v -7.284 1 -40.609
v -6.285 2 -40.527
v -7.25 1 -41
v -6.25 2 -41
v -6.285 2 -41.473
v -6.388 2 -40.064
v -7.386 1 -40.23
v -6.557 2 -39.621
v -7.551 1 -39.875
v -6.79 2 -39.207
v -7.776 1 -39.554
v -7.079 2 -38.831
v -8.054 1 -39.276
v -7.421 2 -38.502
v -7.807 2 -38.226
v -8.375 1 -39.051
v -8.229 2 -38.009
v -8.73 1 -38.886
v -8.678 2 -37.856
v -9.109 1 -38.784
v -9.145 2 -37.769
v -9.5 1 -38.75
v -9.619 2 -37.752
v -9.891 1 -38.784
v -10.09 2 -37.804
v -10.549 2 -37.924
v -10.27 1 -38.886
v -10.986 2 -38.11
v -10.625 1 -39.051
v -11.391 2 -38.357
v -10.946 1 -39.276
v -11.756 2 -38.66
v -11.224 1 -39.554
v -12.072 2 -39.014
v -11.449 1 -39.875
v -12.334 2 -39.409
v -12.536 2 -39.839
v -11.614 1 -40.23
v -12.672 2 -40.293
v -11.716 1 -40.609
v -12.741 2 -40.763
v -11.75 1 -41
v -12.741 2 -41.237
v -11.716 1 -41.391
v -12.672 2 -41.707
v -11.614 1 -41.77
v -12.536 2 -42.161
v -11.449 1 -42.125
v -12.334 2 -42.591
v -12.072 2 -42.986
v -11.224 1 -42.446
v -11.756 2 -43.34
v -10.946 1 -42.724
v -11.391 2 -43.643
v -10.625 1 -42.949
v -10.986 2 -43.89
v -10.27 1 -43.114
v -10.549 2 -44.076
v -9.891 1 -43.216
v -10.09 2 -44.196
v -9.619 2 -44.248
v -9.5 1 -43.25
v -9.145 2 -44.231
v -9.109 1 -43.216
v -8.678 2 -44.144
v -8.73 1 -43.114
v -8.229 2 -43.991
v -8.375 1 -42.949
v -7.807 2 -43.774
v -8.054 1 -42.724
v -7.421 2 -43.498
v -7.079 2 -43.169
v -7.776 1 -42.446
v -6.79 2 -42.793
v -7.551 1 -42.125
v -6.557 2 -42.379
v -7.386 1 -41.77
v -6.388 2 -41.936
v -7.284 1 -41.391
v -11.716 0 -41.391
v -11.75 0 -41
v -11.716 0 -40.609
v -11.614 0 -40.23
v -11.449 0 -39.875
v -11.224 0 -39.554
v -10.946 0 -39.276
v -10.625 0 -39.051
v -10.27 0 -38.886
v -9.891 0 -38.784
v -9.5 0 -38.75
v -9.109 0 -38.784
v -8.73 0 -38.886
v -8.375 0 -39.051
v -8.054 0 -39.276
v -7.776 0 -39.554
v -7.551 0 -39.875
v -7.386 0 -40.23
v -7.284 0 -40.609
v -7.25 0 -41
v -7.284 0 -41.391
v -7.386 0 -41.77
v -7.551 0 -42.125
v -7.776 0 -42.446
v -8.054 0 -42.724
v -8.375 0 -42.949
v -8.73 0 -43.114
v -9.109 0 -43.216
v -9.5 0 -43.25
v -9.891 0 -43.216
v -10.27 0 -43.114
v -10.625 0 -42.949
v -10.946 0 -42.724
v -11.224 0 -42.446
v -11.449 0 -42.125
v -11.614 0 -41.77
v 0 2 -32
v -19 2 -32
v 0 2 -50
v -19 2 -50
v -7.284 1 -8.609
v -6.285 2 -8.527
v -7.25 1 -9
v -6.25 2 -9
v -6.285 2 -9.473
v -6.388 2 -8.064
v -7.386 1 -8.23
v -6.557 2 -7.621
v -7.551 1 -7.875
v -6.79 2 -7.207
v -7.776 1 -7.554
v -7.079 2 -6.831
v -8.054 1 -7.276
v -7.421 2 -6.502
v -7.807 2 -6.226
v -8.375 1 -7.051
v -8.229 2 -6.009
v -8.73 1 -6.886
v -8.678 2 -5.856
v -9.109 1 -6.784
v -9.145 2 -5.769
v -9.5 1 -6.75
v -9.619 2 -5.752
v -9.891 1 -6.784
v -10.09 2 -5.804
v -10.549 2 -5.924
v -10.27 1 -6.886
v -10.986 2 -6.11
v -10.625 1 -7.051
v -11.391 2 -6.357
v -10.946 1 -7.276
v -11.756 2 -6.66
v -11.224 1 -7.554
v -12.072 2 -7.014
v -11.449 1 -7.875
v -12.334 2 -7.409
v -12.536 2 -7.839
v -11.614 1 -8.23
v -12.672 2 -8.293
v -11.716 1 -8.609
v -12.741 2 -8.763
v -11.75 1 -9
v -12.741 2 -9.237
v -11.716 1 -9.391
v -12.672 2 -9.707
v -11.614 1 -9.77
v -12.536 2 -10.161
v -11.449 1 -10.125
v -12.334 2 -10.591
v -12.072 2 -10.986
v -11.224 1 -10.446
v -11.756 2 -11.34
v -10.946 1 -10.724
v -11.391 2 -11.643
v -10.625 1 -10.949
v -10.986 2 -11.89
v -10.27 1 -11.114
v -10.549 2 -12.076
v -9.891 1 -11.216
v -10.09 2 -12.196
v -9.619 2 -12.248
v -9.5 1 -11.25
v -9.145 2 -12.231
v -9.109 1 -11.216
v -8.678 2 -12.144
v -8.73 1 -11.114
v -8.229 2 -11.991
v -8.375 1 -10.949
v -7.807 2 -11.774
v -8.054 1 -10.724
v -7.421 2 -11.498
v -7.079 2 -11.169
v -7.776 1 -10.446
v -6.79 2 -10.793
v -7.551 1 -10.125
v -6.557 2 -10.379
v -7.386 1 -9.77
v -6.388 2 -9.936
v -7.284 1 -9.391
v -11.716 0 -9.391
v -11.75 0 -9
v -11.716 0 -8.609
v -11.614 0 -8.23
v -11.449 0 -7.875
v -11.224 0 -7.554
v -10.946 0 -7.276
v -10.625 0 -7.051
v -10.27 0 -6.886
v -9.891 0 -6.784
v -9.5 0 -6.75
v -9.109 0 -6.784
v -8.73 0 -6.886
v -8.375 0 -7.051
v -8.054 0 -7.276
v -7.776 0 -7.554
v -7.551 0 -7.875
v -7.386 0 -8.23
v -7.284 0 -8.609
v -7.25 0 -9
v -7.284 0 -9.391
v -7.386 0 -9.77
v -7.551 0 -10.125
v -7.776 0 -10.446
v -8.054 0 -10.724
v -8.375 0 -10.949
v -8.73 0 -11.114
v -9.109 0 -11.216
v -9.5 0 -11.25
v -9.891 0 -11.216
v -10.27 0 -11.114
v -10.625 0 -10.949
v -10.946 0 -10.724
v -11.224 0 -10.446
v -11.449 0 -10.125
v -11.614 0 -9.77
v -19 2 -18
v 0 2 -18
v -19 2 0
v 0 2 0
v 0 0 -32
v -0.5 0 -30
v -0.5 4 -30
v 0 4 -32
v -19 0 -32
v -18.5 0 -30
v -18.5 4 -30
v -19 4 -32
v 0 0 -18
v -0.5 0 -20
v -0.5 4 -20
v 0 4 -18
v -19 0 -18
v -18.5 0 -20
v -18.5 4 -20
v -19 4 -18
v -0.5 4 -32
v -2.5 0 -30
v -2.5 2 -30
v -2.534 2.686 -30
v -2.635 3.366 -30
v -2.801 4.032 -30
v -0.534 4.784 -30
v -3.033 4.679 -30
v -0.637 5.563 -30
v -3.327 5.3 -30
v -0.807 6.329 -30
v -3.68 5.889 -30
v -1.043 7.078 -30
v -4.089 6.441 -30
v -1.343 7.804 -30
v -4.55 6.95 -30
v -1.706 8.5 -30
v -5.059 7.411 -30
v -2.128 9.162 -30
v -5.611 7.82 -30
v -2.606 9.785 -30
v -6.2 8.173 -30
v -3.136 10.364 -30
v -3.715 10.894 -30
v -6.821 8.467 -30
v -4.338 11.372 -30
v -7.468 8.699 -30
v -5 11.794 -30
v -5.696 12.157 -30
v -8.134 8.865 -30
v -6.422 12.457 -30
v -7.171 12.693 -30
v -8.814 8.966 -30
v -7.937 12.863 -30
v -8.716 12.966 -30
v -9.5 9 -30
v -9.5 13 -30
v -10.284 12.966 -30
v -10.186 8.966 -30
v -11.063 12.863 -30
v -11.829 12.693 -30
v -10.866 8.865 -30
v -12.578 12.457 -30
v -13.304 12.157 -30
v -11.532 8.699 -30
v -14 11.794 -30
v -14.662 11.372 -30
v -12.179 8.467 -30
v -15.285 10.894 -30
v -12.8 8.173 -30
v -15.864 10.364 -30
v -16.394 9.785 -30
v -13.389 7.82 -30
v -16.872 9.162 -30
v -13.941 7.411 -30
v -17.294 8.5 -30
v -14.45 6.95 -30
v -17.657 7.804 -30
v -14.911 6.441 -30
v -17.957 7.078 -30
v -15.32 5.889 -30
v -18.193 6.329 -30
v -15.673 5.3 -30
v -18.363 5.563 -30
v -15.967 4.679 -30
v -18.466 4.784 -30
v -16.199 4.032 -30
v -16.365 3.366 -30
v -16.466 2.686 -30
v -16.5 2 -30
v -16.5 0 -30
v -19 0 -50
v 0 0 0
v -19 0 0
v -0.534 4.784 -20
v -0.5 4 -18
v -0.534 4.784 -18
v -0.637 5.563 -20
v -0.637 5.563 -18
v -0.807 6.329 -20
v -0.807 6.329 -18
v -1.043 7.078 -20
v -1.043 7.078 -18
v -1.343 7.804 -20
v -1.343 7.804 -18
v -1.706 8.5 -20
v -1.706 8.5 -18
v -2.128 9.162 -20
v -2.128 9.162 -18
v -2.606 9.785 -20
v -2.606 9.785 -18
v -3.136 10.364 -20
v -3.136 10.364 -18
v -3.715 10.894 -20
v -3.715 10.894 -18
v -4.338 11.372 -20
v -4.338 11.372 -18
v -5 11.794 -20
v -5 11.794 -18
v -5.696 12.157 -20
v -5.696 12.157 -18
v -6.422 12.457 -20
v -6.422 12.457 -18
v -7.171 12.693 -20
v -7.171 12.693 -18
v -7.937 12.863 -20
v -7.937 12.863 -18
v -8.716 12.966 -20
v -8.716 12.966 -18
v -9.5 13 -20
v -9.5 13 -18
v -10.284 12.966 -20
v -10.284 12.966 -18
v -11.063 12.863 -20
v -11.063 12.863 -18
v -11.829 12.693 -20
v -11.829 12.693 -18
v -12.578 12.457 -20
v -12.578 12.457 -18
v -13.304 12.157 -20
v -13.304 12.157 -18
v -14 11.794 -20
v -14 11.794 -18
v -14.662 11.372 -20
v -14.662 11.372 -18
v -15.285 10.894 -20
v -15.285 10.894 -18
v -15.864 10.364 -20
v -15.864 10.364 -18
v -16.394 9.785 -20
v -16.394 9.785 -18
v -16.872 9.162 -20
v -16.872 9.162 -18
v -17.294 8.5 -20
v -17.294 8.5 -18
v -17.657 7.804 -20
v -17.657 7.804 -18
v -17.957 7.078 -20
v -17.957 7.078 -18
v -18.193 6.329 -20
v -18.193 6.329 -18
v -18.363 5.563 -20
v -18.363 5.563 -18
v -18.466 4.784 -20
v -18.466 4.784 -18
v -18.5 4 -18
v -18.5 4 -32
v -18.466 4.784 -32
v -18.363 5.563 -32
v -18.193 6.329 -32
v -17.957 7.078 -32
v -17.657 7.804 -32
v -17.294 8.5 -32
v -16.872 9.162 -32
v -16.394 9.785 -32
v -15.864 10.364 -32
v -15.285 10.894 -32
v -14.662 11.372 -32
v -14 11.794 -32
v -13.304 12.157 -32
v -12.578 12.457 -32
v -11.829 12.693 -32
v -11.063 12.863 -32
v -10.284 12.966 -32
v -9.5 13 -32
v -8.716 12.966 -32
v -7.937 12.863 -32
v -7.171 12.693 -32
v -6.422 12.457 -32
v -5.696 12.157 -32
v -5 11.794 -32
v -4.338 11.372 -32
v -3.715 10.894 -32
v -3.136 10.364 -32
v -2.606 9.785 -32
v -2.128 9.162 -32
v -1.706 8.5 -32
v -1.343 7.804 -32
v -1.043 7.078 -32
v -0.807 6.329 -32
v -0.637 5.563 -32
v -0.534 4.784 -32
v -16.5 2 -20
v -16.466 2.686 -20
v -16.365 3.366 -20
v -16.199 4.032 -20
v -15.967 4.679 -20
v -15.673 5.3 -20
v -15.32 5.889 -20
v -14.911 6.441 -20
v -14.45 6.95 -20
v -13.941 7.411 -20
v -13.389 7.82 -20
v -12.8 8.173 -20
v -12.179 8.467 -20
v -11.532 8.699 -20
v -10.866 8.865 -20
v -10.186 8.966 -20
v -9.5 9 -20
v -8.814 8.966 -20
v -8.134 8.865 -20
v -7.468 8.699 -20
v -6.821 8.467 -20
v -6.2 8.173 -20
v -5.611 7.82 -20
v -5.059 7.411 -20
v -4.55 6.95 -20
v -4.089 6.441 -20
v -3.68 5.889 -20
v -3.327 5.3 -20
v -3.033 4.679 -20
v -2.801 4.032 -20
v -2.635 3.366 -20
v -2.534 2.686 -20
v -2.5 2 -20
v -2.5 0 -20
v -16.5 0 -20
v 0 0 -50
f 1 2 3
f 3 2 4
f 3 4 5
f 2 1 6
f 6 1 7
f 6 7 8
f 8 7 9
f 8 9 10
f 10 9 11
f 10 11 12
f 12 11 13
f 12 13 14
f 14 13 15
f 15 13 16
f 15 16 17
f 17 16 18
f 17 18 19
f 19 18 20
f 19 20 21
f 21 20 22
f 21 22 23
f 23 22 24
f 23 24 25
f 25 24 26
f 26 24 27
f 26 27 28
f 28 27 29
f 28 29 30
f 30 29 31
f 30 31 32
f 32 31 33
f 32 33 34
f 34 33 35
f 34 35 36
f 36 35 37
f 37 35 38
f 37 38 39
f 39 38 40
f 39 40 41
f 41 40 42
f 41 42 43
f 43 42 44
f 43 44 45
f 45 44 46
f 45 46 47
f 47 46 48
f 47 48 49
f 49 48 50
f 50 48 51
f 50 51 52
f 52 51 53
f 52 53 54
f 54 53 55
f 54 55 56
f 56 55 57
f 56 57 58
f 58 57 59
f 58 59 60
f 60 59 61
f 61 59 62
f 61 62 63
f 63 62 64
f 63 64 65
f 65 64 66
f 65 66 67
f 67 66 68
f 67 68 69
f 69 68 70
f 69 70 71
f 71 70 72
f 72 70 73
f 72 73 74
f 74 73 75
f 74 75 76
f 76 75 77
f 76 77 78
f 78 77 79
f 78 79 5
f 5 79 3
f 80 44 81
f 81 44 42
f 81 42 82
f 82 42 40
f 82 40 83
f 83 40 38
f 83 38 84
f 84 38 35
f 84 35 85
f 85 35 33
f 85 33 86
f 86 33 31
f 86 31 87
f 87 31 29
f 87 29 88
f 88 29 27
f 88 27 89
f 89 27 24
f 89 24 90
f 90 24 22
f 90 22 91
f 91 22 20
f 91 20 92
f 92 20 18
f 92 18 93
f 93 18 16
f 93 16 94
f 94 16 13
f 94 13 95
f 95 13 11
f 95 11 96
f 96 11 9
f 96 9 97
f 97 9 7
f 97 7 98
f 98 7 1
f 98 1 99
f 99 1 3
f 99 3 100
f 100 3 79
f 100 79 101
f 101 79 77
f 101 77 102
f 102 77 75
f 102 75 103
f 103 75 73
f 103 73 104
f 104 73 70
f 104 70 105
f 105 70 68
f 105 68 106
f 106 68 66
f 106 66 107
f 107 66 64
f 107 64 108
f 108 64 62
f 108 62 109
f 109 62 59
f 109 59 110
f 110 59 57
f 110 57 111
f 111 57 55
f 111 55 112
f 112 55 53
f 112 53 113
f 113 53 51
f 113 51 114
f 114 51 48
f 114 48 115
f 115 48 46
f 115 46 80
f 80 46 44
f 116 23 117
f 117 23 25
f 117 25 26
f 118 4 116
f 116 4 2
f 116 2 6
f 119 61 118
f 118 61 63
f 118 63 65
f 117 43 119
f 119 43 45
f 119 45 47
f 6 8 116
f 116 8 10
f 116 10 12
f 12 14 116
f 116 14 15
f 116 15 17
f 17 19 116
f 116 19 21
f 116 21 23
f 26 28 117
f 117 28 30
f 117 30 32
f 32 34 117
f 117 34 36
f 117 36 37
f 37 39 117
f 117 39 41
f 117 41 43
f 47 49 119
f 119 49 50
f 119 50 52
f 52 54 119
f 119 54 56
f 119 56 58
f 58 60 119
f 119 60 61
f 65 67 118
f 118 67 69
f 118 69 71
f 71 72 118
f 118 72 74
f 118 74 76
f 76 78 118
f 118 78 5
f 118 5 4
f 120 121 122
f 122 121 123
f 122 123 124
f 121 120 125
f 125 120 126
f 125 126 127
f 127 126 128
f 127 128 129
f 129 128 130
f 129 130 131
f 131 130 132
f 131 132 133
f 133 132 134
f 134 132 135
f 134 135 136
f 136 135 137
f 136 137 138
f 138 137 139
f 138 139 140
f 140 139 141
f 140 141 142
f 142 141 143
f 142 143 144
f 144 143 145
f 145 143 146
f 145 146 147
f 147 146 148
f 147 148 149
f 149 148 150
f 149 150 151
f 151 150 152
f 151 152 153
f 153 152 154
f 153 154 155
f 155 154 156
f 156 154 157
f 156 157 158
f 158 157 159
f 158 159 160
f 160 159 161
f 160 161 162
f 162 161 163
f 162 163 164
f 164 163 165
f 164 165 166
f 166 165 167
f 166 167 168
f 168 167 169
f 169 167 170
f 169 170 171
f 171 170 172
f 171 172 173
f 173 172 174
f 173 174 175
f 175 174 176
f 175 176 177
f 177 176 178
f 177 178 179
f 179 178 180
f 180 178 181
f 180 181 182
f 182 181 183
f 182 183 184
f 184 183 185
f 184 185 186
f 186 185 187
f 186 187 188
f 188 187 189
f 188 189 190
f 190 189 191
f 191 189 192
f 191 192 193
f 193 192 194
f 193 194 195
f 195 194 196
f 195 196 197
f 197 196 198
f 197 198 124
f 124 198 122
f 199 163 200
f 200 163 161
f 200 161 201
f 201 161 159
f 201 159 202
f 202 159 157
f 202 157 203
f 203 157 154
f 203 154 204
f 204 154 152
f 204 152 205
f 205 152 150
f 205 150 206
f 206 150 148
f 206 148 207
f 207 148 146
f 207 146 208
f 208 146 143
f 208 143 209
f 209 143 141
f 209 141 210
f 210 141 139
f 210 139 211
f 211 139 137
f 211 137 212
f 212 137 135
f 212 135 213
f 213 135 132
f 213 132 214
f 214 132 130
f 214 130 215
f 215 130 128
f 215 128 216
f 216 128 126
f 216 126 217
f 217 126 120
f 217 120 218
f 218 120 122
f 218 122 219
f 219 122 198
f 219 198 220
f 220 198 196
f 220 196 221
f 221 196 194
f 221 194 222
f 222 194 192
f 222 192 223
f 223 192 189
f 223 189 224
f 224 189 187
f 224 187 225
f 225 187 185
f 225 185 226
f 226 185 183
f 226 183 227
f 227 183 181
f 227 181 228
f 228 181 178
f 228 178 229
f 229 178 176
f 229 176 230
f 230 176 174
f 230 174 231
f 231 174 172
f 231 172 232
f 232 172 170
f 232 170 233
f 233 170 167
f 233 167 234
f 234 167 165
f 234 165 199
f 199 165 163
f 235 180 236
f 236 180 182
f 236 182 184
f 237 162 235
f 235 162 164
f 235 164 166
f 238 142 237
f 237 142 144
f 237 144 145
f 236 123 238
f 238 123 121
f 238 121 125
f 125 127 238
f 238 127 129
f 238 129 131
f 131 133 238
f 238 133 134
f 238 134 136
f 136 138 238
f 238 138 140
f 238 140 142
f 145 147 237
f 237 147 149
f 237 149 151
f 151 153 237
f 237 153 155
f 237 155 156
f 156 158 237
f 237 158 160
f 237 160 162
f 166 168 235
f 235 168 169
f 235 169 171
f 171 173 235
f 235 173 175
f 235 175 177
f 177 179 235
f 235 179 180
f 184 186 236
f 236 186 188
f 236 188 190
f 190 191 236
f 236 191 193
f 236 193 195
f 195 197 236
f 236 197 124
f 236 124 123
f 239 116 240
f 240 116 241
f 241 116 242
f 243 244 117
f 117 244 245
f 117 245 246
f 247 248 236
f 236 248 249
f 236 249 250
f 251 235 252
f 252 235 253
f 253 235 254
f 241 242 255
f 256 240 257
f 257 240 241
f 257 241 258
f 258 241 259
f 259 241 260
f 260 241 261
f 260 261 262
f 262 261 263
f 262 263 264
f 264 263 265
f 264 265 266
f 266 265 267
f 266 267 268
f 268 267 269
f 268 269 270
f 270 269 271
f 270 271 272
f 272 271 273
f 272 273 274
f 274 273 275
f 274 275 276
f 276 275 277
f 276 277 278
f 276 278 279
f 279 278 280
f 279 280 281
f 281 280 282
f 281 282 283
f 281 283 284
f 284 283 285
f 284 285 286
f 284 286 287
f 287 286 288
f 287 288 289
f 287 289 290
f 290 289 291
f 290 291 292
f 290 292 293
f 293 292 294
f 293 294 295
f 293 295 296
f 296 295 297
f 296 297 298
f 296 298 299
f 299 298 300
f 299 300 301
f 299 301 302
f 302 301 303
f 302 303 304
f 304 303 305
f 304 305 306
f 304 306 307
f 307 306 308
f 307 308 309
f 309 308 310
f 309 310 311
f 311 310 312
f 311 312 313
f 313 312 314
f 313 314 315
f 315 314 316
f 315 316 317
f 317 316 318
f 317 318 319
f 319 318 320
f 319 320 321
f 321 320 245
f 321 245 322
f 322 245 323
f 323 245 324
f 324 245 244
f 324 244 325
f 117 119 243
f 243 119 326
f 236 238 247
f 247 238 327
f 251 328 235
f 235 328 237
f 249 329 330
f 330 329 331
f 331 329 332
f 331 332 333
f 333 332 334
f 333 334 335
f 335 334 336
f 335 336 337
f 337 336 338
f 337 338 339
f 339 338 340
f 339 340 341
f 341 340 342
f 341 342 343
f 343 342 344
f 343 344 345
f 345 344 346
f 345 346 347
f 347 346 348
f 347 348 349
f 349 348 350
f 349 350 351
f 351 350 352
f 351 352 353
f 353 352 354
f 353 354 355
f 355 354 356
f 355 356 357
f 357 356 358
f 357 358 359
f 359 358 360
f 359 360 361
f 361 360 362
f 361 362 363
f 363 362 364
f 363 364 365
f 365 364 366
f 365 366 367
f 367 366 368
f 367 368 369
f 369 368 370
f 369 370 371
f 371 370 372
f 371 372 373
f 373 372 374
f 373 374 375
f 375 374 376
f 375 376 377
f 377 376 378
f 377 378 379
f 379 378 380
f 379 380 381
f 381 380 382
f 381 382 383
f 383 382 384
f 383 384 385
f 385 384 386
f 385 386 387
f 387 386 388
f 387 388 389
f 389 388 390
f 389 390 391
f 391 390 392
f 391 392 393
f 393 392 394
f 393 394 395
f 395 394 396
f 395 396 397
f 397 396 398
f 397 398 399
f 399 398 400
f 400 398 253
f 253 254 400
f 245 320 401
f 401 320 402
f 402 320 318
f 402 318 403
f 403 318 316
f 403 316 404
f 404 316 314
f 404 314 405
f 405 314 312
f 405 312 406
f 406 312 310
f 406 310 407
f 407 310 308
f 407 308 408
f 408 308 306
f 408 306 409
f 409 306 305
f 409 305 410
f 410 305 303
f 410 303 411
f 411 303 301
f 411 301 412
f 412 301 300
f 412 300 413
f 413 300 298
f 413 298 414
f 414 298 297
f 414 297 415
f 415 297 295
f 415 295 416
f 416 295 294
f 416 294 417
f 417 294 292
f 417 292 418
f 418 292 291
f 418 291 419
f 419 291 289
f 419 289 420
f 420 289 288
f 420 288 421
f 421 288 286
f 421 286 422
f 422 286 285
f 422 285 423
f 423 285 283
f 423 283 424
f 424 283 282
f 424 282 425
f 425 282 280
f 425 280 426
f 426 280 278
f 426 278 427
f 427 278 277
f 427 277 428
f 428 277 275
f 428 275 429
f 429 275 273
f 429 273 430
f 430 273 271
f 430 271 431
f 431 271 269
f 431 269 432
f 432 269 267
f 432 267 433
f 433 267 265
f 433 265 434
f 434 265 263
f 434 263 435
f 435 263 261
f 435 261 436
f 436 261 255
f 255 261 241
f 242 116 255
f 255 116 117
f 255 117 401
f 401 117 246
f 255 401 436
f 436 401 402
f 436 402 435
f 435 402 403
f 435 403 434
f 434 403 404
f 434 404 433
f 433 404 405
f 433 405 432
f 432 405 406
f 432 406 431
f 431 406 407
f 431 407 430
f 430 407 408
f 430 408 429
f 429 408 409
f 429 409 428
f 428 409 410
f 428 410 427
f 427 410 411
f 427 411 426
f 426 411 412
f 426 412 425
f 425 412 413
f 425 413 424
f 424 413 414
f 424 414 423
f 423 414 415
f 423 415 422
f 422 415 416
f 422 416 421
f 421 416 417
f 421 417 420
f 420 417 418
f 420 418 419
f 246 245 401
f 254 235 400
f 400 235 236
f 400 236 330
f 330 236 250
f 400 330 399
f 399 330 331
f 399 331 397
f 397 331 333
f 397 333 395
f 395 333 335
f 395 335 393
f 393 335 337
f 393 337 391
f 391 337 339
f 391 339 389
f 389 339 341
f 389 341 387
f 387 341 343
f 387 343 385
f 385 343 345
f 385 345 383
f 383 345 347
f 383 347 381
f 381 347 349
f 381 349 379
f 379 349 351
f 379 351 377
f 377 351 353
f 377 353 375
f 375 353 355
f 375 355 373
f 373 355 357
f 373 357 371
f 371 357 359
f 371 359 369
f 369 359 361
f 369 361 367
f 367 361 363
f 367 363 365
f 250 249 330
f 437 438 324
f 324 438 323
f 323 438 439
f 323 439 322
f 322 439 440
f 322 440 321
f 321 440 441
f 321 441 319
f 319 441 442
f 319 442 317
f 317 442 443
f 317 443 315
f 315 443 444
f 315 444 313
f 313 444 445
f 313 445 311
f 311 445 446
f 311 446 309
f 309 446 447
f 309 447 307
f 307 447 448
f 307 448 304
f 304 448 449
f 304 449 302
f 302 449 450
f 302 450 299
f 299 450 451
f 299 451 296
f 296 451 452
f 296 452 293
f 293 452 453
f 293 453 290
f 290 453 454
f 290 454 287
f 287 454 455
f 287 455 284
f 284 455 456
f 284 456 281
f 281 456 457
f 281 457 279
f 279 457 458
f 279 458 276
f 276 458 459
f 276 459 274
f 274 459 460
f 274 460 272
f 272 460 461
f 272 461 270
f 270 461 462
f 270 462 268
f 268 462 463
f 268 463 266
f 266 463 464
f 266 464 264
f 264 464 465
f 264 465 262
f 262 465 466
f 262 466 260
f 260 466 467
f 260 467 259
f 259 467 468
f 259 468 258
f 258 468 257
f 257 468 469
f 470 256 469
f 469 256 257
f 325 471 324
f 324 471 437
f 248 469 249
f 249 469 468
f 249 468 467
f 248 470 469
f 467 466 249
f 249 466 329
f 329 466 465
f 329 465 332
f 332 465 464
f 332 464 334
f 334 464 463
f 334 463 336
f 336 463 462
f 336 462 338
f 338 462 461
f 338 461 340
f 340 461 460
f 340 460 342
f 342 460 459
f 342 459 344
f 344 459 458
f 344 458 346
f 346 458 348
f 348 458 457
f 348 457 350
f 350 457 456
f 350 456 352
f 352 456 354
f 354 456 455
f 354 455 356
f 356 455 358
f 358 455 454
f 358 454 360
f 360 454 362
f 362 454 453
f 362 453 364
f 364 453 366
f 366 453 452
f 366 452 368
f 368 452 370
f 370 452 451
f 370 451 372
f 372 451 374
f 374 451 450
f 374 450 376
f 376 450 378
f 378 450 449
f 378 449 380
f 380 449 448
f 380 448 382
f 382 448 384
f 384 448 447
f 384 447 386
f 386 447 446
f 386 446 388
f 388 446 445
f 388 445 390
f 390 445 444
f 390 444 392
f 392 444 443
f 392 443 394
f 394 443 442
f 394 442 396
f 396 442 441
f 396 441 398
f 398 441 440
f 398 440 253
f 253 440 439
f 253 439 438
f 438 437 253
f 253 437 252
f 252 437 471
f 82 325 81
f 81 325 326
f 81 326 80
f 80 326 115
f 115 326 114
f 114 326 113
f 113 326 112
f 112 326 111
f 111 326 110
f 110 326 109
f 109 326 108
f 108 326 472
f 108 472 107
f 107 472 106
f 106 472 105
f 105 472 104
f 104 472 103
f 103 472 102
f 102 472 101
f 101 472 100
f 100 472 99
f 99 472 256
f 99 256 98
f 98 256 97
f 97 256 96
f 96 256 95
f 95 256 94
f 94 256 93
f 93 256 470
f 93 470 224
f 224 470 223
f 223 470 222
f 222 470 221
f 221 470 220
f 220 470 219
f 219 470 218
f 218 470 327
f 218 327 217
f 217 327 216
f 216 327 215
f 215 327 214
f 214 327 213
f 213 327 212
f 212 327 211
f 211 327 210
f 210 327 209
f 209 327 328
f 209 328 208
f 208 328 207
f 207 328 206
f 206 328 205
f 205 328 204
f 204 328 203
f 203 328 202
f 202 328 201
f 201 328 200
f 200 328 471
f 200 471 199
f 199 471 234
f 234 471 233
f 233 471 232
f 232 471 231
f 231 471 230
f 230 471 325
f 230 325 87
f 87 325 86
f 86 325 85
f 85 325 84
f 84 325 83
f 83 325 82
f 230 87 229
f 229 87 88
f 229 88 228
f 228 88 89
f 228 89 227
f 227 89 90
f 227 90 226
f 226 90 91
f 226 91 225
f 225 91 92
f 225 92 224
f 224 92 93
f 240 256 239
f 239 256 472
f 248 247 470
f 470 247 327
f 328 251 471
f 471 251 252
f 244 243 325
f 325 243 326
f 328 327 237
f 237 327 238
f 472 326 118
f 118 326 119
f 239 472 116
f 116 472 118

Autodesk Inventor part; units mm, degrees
ref_plane "YZ Plane" through (0, 0, 0) normal (1, 0, 0) x (0, 1, 0)
ref_plane "XZ Plane" through (0, 0, 0) normal (0, 1, 0) x (-1, 0, 0)
ref_plane "XY Plane" through (0, 0, 0) normal (0, 0, 1) x (1, 0, 0)
sketch "Sketch1" plane through (0, 0, 0) normal (0, 1, 0) x (-1, 0, 0)
  line L0 (0, 0) -> (19, 0)
  line L1 (19, 0) -> (19, -50)
  line L2 (19, -50) -> (0, -50)
  line L3 (0, -50) -> (0, 0)
  dimension "d0" = 50
  dimension "d1" = 19
extrude "Extrusion1" add sketch "Sketch1" along normal blind 2
sketch "Sketch2" plane through (0, 2, 0) normal (0, 1, 0) x (1, 0, 0)
  line L0 (-19, 20) -> (-16.5, 20)
  line L1 (-16.5, 20) -> (-16.5, 30)
  line L2 (-16.5, 30) -> (-19, 30)
  line L3 (-19, 30) -> (-19, 20)
  line L4 (-19, 0) -> (0, 0) projected
  line L5 (-19, 50) -> (-19, 0) projected
  line L6 (-2.5, 20) -> (0, 20)
  line L7 (0, 20) -> (0, 30)
  line L8 (0, 30) -> (-2.5, 30)
  line L9 (-2.5, 30) -> (-2.5, 20)
  line L10 (0, 0) -> (0, 50) projected
  dimension "d4" = 2.5
  dimension "d5" = 10
  dimension "d6" = 20
  dimension "d7" = 10
  dimension "d8" = 2.5
  dimension "d9" = 20
extrude "Extrusion2" cut sketch "Sketch2" against normal through all
sketch "Sketch3" plane through (-16.5, 2, -20) normal (0, 0, -1) x (-1, 0, 0)
  line L0 (2.5, 0) -> (-16.5, 0) projected
  arc A0 (0, 0) -> (-14, 0) centre (-7, 0) ccw
  point P0 (-16.5, -2)
  dimension "d12" = 7
extrude "Extrusion3" add sketch "Sketch3" along normal blind 10
sketch "Sketch5" plane through (0, 2, 0) normal (0, 1, 0) x (1, 0, 0)
  line L0 (-16.5, 20) -> (-19, 20) projected
  line L1 (-19, 20) -> (0, 20)
  line L2 (0, 20) -> (0, 18)
  line L3 (0, 18) -> (-19, 18)
  line L4 (-19, 18) -> (-19, 20)
  line L5 (-19, 30) -> (-16.5, 30) projected
  line L6 (-19, 30) -> (0, 30)
  line L7 (0, 30) -> (0, 32)
  line L8 (0, 32) -> (-19, 32)
  line L9 (-19, 32) -> (-19, 30)
  line L10 (0, 0) -> (0, 20) projected
  line L11 (0, 30) -> (0, 50) projected
  dimension "d15" = 2
  dimension "d16" = 2
extrude "Extrusion4" add sketch "Sketch5" along normal blind 2
sketch "Sketch6" plane through (-16.5, 2, -30) normal (0, 0, -1) x (-1, 0, 0)
  arc A0 (2, 2) -> (-16, 2) centre (-7, 2) ccw
  line L0 (2.5, 0) -> (2.5, 2) projected
  line L1 (-13.7082, 2) -> (-0.2918, 2) projected
  line L2 (2, 2) -> (-16, 2)
  point P0 (-16.5, -2)
  dimension "d19" = 9
  dimension "d21" = 0
  dimension "d22" = 0
  dimension "d23" = 9.5
  dimension "d24" = 0
extrude "Extrusion5" add sketch "Sketch6" along normal blind 2
sketch "Sketch7" plane through (-16.5, 2, -20) normal (0, 0, 1) x (1, 0, 0)
  arc A0 (16, 2) -> (-2, 2) centre (7, 2) ccw
  line L0 (-2.5, 2) -> (16.5, 2) projected
  point P0 (16.5, -2)
  point P1 (7, 2)
  point P2 (-2, 2)
  point P3 (16, 2)
  dimension "d27" = 9
  dimension "d28" = 0
  dimension "d29" = 0
extrude "Extrusion6" add sketch "Sketch7" along normal blind 2
sketch "Sketch8" plane through (0, 4, 0) normal (0, 1, 0) x (1, 0, 0)
  line L0 (0, 18) -> (-19, 18) projected
  line L1 (-19, 20) -> (-16.5, 20) projected
  line L2 (-19, 18) -> (-19, 20)
  line L3 (-19, 20) -> (-18.5, 20)
  line L4 (-18.5, 20) -> (-19, 18)
  line L5 (-0.5, 30) -> (-18.5, 30) projected
  line L6 (-19, 50) -> (-19, 32) projected
  line L7 (-18.5, 30) -> (-19, 32)
  line L8 (-19, 32) -> (-19, 30)
  line L9 (-19, 30) -> (-18.5, 30)
  line L10 (0, 20) -> (-0.5, 20) projected
  line L11 (-0.5, 20) -> (0, 20)
  line L12 (0, 18) -> (0, 20) projected
  line L13 (0, 20) -> (0, 18)
  line L14 (0, 18) -> (-0.5, 20)
  line L15 (0, 30) -> (-2.5, 30) projected
  line L16 (0, 30) -> (0, 32) projected
  line L17 (0, 32) -> (0, 30)
  line L18 (0, 30) -> (-0.5, 30)
  line L19 (-0.5, 32) -> (-0.5, 30) projected
  line L20 (-0.5, 30) -> (0, 32)
  point P0 (0, 0)
extrude "Extrusion7" cut sketch "Sketch8" against normal through all
sketch "Sketch9" plane through (0, 2, 0) normal (0, 1, 0) x (1, 0, 0)
  circle A0 centre (-9.5, 9) radius 2.25
  circle A1 centre (-9.5, 41) radius 2.25
  line L0 (-19, 0) -> (0, 0) projected
  line L1 (0, 50) -> (-19, 50) projected
  line L2 (-19, 18) -> (-19, 0) projected
  line L3 (-19, 50) -> (-19, 32) projected
  dimension "d34" = 4.5
  dimension "d35" = 4.5
  dimension "d36" = 9
  dimension "d37" = 9
  dimension "d38" = 9.5
  dimension "d39" = 9.5
extrude "Extrusion8" cut sketch "Sketch9" against normal through all
chamfer "Chamfer1" distance 1 angle 45 2 edges at (-11.75, 2, -9) (-11.75, 2, -41)
properties part number "SUPPORT_POULIE_ARRIERE"
